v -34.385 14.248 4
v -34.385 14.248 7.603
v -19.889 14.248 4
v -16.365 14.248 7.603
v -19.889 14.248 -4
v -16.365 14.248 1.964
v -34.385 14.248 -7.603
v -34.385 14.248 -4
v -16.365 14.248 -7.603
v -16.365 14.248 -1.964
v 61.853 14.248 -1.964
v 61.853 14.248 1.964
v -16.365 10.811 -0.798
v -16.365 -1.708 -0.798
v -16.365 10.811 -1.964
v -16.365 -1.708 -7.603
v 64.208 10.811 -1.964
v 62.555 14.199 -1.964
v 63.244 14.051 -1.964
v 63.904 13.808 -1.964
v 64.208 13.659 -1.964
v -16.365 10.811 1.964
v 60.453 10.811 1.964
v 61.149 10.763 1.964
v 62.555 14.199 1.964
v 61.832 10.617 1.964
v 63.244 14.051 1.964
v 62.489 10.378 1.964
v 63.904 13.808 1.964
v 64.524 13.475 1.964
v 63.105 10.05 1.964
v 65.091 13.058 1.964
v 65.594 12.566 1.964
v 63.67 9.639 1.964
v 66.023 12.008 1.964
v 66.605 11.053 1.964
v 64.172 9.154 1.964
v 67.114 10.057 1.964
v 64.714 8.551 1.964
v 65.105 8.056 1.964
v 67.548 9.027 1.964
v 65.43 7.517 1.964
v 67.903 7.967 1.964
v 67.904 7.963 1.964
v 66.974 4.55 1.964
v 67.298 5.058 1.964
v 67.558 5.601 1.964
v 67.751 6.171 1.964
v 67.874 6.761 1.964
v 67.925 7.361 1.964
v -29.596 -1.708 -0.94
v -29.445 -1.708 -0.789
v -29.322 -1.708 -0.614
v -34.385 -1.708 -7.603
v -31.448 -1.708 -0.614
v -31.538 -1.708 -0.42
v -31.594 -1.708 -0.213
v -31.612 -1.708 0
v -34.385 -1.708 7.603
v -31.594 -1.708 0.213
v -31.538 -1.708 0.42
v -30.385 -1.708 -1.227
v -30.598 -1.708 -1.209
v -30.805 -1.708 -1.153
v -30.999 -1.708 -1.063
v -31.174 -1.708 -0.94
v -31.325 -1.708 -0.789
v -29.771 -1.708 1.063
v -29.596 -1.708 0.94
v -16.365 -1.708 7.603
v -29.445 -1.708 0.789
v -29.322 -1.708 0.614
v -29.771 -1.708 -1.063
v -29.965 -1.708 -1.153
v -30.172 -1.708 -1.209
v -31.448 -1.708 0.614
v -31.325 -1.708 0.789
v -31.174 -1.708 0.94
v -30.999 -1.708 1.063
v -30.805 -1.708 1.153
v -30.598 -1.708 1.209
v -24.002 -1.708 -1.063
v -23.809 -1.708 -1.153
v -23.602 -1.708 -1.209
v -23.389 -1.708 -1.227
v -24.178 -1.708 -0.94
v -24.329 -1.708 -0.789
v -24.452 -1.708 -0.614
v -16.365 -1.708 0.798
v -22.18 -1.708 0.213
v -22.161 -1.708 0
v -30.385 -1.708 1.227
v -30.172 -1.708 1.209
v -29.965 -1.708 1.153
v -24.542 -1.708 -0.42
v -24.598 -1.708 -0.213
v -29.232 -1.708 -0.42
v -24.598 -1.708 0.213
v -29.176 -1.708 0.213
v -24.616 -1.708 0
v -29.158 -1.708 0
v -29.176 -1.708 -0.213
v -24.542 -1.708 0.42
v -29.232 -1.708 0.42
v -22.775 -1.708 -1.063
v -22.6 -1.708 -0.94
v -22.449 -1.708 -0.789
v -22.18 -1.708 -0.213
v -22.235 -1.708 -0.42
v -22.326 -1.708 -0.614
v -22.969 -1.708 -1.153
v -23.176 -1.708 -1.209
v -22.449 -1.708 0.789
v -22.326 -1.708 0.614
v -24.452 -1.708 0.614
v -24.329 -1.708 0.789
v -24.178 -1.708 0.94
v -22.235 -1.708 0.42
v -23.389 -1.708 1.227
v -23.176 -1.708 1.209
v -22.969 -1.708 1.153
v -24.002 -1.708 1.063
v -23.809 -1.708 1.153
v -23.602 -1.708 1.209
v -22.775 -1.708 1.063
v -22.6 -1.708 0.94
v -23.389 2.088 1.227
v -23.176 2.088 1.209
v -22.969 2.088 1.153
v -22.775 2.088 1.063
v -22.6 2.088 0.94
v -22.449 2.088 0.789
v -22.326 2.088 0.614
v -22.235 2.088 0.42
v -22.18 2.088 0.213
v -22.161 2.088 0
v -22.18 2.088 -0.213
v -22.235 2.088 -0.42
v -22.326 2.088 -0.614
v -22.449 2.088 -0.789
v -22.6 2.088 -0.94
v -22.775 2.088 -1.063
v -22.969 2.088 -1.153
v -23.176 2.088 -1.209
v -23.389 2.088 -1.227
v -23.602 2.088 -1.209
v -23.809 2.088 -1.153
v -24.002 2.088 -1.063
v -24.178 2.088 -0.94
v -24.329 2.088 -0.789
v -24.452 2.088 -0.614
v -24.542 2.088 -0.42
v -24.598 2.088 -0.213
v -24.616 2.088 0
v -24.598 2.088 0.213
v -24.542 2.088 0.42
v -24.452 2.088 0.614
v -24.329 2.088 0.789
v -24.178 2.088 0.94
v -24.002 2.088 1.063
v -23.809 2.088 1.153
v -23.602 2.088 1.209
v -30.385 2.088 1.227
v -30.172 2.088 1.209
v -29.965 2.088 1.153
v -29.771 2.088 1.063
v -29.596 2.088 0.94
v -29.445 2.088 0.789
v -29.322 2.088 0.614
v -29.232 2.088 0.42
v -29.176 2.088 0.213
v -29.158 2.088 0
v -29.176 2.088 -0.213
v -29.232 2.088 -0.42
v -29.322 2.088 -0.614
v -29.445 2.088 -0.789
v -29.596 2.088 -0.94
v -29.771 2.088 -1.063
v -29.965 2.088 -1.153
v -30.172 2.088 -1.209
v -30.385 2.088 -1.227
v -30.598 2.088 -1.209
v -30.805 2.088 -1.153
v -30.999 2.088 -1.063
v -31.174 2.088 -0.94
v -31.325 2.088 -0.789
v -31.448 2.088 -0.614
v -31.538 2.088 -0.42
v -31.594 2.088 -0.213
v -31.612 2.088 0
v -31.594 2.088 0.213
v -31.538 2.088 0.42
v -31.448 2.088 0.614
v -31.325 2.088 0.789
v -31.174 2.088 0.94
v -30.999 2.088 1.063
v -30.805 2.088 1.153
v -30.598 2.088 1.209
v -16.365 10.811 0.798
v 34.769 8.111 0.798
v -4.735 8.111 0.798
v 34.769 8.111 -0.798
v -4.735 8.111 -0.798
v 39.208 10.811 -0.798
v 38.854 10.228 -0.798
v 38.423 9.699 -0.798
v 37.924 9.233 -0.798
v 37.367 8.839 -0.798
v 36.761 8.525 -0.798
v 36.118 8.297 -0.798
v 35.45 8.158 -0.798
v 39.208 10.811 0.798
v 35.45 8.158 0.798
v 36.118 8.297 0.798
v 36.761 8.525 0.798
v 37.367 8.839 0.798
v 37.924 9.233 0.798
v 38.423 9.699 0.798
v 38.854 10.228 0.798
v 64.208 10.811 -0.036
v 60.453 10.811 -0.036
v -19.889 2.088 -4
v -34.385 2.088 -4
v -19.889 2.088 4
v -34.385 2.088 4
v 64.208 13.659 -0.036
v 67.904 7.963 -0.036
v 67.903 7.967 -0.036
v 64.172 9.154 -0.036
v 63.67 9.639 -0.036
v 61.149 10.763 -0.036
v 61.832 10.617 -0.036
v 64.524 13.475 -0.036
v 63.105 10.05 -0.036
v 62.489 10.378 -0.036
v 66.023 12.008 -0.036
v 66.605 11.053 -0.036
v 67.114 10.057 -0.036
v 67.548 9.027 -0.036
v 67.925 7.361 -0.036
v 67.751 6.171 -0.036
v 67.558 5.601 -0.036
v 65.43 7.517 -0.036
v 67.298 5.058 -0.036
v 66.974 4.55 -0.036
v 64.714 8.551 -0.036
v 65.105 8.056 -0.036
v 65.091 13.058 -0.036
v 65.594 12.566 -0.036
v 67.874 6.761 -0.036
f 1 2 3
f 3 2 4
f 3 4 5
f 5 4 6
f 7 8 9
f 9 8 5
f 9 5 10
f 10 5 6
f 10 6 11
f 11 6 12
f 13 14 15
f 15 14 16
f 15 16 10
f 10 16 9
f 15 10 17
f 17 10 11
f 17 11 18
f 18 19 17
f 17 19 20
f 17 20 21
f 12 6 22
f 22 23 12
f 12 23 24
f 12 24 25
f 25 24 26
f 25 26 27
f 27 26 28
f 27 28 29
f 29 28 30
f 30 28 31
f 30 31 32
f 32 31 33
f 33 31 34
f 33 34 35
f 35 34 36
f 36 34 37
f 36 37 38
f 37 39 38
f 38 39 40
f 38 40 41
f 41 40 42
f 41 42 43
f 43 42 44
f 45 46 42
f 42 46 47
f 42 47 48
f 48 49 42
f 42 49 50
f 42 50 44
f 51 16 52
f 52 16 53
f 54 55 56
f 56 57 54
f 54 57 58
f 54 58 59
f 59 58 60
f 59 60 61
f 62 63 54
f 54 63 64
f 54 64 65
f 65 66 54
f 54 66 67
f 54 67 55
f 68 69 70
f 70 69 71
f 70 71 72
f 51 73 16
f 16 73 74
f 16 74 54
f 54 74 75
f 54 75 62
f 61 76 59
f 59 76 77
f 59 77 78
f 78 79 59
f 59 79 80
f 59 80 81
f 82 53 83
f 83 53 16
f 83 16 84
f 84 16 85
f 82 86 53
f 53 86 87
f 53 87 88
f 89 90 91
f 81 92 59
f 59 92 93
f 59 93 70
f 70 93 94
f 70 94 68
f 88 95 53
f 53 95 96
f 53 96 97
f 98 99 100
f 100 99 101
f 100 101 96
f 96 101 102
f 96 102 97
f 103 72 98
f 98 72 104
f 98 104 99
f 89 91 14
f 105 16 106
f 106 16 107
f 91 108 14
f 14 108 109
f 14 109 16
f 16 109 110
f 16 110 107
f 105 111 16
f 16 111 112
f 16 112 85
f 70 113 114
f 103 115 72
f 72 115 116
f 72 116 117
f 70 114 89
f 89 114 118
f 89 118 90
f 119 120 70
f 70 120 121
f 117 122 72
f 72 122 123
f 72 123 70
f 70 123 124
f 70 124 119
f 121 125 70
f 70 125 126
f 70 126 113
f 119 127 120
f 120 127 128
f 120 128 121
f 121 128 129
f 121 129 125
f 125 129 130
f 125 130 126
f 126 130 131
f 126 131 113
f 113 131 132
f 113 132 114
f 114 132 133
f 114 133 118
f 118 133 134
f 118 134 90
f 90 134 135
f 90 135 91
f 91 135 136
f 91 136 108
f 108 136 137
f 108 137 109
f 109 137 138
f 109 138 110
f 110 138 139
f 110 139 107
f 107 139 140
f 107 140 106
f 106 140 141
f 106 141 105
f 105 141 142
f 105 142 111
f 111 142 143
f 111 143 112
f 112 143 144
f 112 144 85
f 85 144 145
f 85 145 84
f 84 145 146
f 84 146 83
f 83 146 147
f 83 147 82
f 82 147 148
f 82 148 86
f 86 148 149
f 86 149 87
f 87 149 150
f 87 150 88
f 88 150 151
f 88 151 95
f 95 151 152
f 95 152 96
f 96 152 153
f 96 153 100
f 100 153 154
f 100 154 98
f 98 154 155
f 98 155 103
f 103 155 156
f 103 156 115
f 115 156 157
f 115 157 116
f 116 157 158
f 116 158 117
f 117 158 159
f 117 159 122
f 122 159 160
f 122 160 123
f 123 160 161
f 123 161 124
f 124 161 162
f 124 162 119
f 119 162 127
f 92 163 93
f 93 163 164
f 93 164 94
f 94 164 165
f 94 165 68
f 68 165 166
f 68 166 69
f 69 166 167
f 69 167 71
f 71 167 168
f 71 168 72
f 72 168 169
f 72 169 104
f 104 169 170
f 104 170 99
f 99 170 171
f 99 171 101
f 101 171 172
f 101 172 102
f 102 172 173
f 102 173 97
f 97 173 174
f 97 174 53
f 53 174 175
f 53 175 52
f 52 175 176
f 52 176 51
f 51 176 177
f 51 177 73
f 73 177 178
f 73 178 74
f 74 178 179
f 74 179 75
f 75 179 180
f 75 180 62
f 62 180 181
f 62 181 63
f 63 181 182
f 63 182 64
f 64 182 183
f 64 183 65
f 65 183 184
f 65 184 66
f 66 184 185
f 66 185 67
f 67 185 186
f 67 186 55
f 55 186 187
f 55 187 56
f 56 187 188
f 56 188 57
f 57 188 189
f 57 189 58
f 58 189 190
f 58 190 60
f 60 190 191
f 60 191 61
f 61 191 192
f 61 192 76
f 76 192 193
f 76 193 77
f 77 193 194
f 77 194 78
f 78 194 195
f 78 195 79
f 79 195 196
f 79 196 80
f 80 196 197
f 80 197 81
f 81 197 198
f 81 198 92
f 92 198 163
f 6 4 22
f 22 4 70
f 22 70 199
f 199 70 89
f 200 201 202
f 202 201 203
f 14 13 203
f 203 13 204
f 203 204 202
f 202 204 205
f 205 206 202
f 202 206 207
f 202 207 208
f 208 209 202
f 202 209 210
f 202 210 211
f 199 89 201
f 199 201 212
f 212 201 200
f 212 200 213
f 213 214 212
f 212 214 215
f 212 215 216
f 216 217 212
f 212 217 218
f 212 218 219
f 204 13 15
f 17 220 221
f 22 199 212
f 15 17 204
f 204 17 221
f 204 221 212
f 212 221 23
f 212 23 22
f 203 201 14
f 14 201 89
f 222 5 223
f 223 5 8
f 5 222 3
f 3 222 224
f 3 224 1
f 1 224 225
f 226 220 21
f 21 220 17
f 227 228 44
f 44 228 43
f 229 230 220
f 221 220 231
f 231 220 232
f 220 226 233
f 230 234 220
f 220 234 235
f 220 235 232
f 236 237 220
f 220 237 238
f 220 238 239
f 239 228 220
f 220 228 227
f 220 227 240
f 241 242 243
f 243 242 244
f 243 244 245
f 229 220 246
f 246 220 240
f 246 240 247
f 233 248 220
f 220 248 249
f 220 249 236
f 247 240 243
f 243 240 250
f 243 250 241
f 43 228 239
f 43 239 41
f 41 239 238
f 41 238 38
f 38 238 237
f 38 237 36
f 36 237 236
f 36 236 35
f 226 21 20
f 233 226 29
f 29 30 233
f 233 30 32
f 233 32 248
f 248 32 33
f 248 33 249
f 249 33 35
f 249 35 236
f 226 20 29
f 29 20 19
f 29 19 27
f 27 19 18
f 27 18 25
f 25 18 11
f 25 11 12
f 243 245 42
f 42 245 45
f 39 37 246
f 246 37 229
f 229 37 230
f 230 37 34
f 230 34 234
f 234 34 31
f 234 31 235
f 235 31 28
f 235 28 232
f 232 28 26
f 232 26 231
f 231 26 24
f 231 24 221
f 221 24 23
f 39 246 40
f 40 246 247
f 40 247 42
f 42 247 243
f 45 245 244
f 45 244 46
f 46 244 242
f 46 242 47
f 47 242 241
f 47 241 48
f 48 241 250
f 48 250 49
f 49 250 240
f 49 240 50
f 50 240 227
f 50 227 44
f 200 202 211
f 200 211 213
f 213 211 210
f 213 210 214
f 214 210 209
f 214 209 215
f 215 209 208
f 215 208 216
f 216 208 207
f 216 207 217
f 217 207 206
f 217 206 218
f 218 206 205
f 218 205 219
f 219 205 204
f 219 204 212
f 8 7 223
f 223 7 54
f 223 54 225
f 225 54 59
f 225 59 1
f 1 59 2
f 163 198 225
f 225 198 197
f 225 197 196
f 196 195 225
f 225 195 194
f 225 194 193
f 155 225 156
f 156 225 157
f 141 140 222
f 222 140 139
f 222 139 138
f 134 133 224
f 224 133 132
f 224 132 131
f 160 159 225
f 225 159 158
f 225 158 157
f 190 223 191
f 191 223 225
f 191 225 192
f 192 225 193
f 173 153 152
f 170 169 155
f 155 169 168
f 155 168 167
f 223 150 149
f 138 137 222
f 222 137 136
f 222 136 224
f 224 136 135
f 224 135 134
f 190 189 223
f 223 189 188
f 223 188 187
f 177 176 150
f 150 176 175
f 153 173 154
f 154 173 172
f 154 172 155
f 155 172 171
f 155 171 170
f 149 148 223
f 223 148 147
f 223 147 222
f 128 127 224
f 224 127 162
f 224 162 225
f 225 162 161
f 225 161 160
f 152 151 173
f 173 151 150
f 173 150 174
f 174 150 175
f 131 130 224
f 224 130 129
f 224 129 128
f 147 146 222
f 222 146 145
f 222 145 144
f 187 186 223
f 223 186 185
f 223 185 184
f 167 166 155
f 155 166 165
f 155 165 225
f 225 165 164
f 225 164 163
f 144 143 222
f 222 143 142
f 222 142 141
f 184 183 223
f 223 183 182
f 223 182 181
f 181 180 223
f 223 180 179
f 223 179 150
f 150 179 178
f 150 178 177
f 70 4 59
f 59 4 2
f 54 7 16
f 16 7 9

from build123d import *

# Parameters (mm, degrees)
SKETCH1_W            = 60
SKETCH1_H            = 7.5
BOSS_EXTRUDE1_DEPTH  = 13
SKETCH3_W            = 12
SKETCH3_H            = 5
CUT_EXTRUDE1_DEPTH   = 10.5
SKETCH4_R            = 1
CUT_EXTRUDE2_DEPTH   = 10
SKETCH9_W            = 45.277568689
SKETCH9_H            = 2.15
CUT_EXTRUDE8_DEPTH   = 15
SKETCH13_W           = 45.277568689
SKETCH13_H           = 3.2
CUT_EXTRUDE10_DEPTH  = 8
SKETCH14_W           = 45.277568689
SKETCH14_H           = 0.95
CUT_EXTRUDE11_DEPTH  = 2.2
RIB10_REACH          = 34.91
SKETCH16_WALL_W      = 80.220727034
SKETCH16_WALL_H      = 1.3
SKETCH20_W           = 12
SKETCH20_H           = 5
BOSS_EXTRUDE3_DEPTH  = 3
SKETCH22_W           = 12
SKETCH22_H           = 5
CUT_EXTRUDE13_DEPTH  = 1.95
CUT_EXTRUDE14_START  = -10
SKETCH23_R           = 1
CUT_EXTRUDE14_DEPTH  = 10
SCALE1_SCALE         = 1.6
SCALE3_SCALE         = 0.8
SCALE4_SCALE         = 0.95890411
SKETCH34_W           = 14.546034326
SKETCH34_H           = 7.999999695
CUT_EXTRUDE20_DEPTH  = 15
SKETCH39_W           = 3.927671232
SKETCH39_H           = 3.436712329
BOSS_EXTRUDE5_DEPTH  = 25
BOSS_EXTRUDE6_DEPTH  = 2
FILLET1_R            = 15
FILLET3_R            = 5
BOSS_EXTRUDE7_DEPTH  = 2
FILLET4_R            = 5
FILLET5_R            = 5
FILLET6_R            = 5
FILLET7_R            = 5
SKETCH52_W           = 9.205479452
SKETCH52_H           = 15.956164384
CUT_EXTRUDE21_DEPTH  = 0.05
SKETCH54_W           = 0.182732797
SKETCH54_H           = 6.136986302
BOSS_EXTRUDE8_DEPTH  = 15
SKETCH55_W           = 6.136986302
SKETCH55_H           = 3.40109589
CUT_EXTRUDE22_DEPTH  = 15
SKETCH57_W           = 14.496034326
SKETCH57_H           = 7.999999695
CUT_EXTRUDE23_DEPTH  = 12.16
SKETCH58_W           = 18.020271855
SKETCH58_H           = 15.956164384
BOSS_EXTRUDE9_DEPTH  = 3
SKETCH59_W           = 18.020271855
SKETCH59_H           = 15.956164384
BOSS_EXTRUDE10_DEPTH = 3


with BuildPart() as part:
    # Sketch1 → Boss-Extrude1 (new body)
    with BuildSketch(Plane(origin=(0, 0, 0), x_dir=(1, 0, 0), z_dir=(0, 1, 0))):
        Rectangle(SKETCH1_W, SKETCH1_H)
    extrude(amount=BOSS_EXTRUDE1_DEPTH)

    # Sketch3 → Cut-Extrude1 (cut)
    with BuildSketch(Plane(origin=(0, 13, 0), x_dir=(1, 0, 0), z_dir=(0, 1, 0))):
        with Locations((-24, 0)):
            Rectangle(SKETCH3_W, SKETCH3_H)
    extrude(amount=-CUT_EXTRUDE1_DEPTH, mode=Mode.SUBTRACT)

    # Sketch4 → Cut-Extrude2 (cut)
    with BuildSketch(Plane(origin=(0, 2.5, 0), x_dir=(1, 0, 0), z_dir=(0, 1, 0))):
        with Locations(Location((-21, 0, 0), (0, 0, 270))):
            Circle(SKETCH4_R)
        with Locations(Location((-26.7, 0, 0), (0, 0, 270))):
            Circle(SKETCH4_R)
    extrude(amount=-CUT_EXTRUDE2_DEPTH, mode=Mode.SUBTRACT)

    # Sketch9 → Cut-Extrude8 (cut)
    with BuildSketch(Plane.XZ):
        with Locations((7.361215656, 2.675)):
            Rectangle(SKETCH9_W, SKETCH9_H)
        with Locations((7.361215656, -2.675)):
            Rectangle(SKETCH9_W, SKETCH9_H)
    extrude(amount=-CUT_EXTRUDE8_DEPTH, mode=Mode.SUBTRACT)

    # Sketch13 → Cut-Extrude10 (cut)
    with BuildSketch(Plane.XZ):
        with Locations((7.361215656, 0)):
            Rectangle(SKETCH13_W, SKETCH13_H)
    extrude(amount=-CUT_EXTRUDE10_DEPTH, mode=Mode.SUBTRACT)

    # Sketch14 → Cut-Extrude11 (cut)
    with BuildSketch(Plane.XZ.offset(-8)):
        with Locations((7.361215656, 1.125)):
            Rectangle(SKETCH14_W, SKETCH14_H)
        with Locations((7.361215656, -1.125)):
            Rectangle(SKETCH14_W, SKETCH14_H)
    extrude(amount=-CUT_EXTRUDE11_DEPTH, mode=Mode.SUBTRACT)

    # Sketch16 wall → Rib10 (add, up to next)
    with BuildSketch(Plane(origin=(-10.539893857, 4, 0), x_dir=(-0.764085816902, -0.645114613389, 0), z_dir=(0.645114613389, -0.764085816902, 0)), mode=Mode.PRIVATE) as rib10_sk1:
        Rectangle(SKETCH16_WALL_W, SKETCH16_WALL_H)
    rib10_tool1 = extrude(rib10_sk1.sketch, amount=-RIB10_REACH, mode=Mode.PRIVATE) - part.part
    add(rib10_tool1.solids().sort_by_distance((-10.539893857, 4, 0))[0])

    # Sketch20 → Boss-Extrude3 (add)
    with BuildSketch(Plane(origin=(0, 2.5, 0), x_dir=(1, 0, 0), z_dir=(0, 1, 0))):
        with Locations((-24, 0)):
            Rectangle(SKETCH20_W, SKETCH20_H)
    extrude(amount=BOSS_EXTRUDE3_DEPTH)

    # Sketch22 → Cut-Extrude13 (cut)
    with BuildSketch(Plane(origin=(0, 5.5, 0), x_dir=(1, 0, 0), z_dir=(0, 1, 0))):
        with Locations((-24, 0)):
            Rectangle(SKETCH22_W, SKETCH22_H)
    extrude(amount=-CUT_EXTRUDE13_DEPTH, mode=Mode.SUBTRACT)

    # Sketch23 → Cut-Extrude14 (cut)
    with BuildSketch(Plane.XZ.offset(CUT_EXTRUDE14_START)):
        with Locations(Location((-26.7, 0, 0), (0, 0, 90))):
            Circle(SKETCH23_R)
        with Locations(Location((-21, 0, 0), (0, 0, 90))):
            Circle(SKETCH23_R)
    extrude(amount=CUT_EXTRUDE14_DEPTH, mode=Mode.SUBTRACT)


with BuildPart() as part_1:
    # Scale1: scaled about (-10.495093685, 7.511594664, 0)
    add(part.part.scale(SCALE1_SCALE).moved(Location((6.297056211, -4.506956798, 0))))


with BuildPart() as part_2:
    # Scale3: scaled about (-10.495093686, 7.511594664, 0)
    add(part_1.part.scale(SCALE3_SCALE).moved(Location((-2.099018737, 1.502318933, 0))))


with BuildPart() as part_3:
    # Scale4: scaled about (-10.495093686, 7.511594664, 0)
    add(part_2.part.scale(SCALE4_SCALE).moved(Location((-0.43130522, 0.308695671, 0))))

    # Sketch34 → Cut-Extrude20 (cut)
    with BuildSketch(Plane(origin=(0, 2.649144227, 0), x_dir=(1, 0, 0), z_dir=(0, 1, 0))):
        with Locations((-27.162345095, -7.59e-07)):
            Rectangle(SKETCH34_W, SKETCH34_H)
    extrude(amount=CUT_EXTRUDE20_DEPTH, mode=Mode.SUBTRACT)

    # Sketch39 → Boss-Extrude5 (add)
    with BuildSketch(Plane(origin=(39.208473359, 0, 0), x_dir=(0, 0, -1), z_dir=(1, 0, 0))):
        with Locations((0, 12.529692173)):
            Rectangle(SKETCH39_W, SKETCH39_H)
    extrude(amount=BOSS_EXTRUDE5_DEPTH)

    # Sketch45 → Boss-Extrude6 (add)
    with BuildSketch(Plane.XY.offset(1.963835616)):
        Polygon((64.208473359, 14.248048337), (67.197905162, 11.258616533), (67.903164447, 7.966965022), (68.244364149, 4.408739558), (65.703189261, 8.649364426), (64.208473359, 10.811336008), align=None)
    extrude(amount=-BOSS_EXTRUDE6_DEPTH)

    # Fillet1
    # the kernel refuses this fillet: 15 mm, written as the material it takes off along each edge
    with BuildSketch(Plane(origin=(67.197905162, 11.258616533, 12.842753048), x_dir=(-0.7071067811865568, 0.7071067811865384, 0), z_dir=(0, 0, -1))) as fillet1_piece_1:
        with BuildLine():
            CenterArc((4.351566973, -15), FILLET1_R, 90, 28.588827617)
            Line((-2.826242727, -1.828855482), (0, 0))
            Line((0, 0), (4.351566973, 0))
        make_face()
    extrude(amount=23.757834864, mode=Mode.SUBTRACT)

    # Fillet3
    fillet3_edges = [part_3.edges().sort_by_distance(p)[0] for p in [
        (64.207755923, 14.248048337, 0),
    ]]
    fillet(fillet3_edges, radius=FILLET3_R)

    # Sketch47 → Boss-Extrude7 (add)
    with BuildSketch(Plane.XY.offset(1.963835616)):
        Polygon((62.681686065, 10.811336008), (65.137458222, 8.07903323), (66.974128155, 4.550150551), (68.244364149, 4.408739558), (65.703189261, 8.649364426), (64.208473359, 10.811336008), align=None)
    extrude(amount=-BOSS_EXTRUDE7_DEPTH)

    # Fillet4
    fillet4_edges = [part_3.edges().sort_by_distance(p)[0] for p in [
        (62.681686065, 10.811336008, 0.963835616),
    ]]
    fillet(fillet4_edges, radius=FILLET4_R)

    # Fillet5
    fillet5_edges = [part_3.edges().sort_by_distance(p)[0] for p in [
        (65.137458222, 8.07903323, 0.963835616),
    ]]
    fillet(fillet5_edges, radius=FILLET5_R)

    # Fillet6
    # the kernel refuses this fillet: 5 mm, written as the material it takes off along each edge
    with BuildSketch(Plane(origin=(68.244364149, 4.408739558, 10.889498263), x_dir=(-0.993860211442073, 0.11064303011178676, 0), z_dir=(0, 0, -1))) as fillet6_piece_1:
        with BuildLine():
            CenterArc((5.625725169, 2.469414691), FILLET6_R, 168.170246518, 41.425870444)
            Line((0.731919855, 3.494436423), (0.634043748, 3.514936858))
            Line((0.634043748, 3.514936858), (-0.097876106, 0.020500435))
            Line((-0.097876106, 0.020500435), (0, -0.1))
            ThreePointArc((0, -0.1), (0.639041577, -0.1), (1.191130314, -0.049388294))
            Line((1.191130314, -0.049388294), (1.278083154, 0))
        make_face()
    extrude(amount=19.851325293, mode=Mode.SUBTRACT)

    # Fillet7
    # the kernel refuses this fillet: 5 mm, written as the material it takes off along each edge
    with BuildSketch(Plane(origin=(39.208473358, 8.111062035, -11.897149471), x_dir=(1.1344900488242768e-10, 1.0, 0), z_dir=(0, 0, 1))) as fillet7_piece_1:
        with BuildLine():
            CenterArc((4.999999999, 4.439736501), FILLET7_R, 180.000000007, 62.61642823)
            Line((-1e-09, 4.439736501), (-0.100000001, 4.439736501))
            Line((-0.100000001, 4.439736501), (-0.1, 0))
            Line((-0.1, 0), (0, -0.1))
            ThreePointArc((0, -0.1), (1.350136986, -0.1), (2.654279452, -0.08879473))
            Line((2.654279452, -0.08879473), (2.700273973, 0))
        make_face()
    extrude(amount=23.794298942, mode=Mode.SUBTRACT)

    # Sketch52 → Cut-Extrude21 (cut)
    with BuildSketch(Plane.ZY.offset(34.435362258)):
        with Locations((0, 6.269966145)):
            Rectangle(SKETCH52_W, SKETCH52_H)
    extrude(amount=-CUT_EXTRUDE21_DEPTH, mode=Mode.SUBTRACT)

    # Sketch54 → Boss-Extrude8 (add)
    with BuildSketch(Plane(origin=(0, 2.649144227, 0), x_dir=(1, 0, 0), z_dir=(0, 1, 0))):
        with Locations((-19.797961534, 0)):
            Rectangle(SKETCH54_W, SKETCH54_H)
    extrude(amount=BOSS_EXTRUDE8_DEPTH)

    # Sketch55 → Cut-Extrude22 (cut)
    with BuildSketch(Plane(origin=(-19.706595135, 0, 0), x_dir=(0, 0, -1), z_dir=(1, 0, 0))):
        with Locations((0, 15.948596282)):
            Rectangle(SKETCH55_W, SKETCH55_H)
    extrude(amount=-CUT_EXTRUDE22_DEPTH, mode=Mode.SUBTRACT)

    # Sketch57 → Cut-Extrude23 (cut)
    with BuildSketch(Plane(origin=(0, 14.248048337, 0), x_dir=(1, 0, 0), z_dir=(0, 1, 0))):
        with Locations((-27.137345095, -7.59e-07)):
            Rectangle(SKETCH57_W, SKETCH57_H)
    extrude(amount=-CUT_EXTRUDE23_DEPTH, mode=Mode.SUBTRACT)

    # Sketch58 → Boss-Extrude9 (add)
    with BuildSketch(Plane.XY.offset(4.602739726)):
        with Locations((-25.37522633, 6.269966145)):
            Rectangle(SKETCH58_W, SKETCH58_H)
    extrude(amount=BOSS_EXTRUDE9_DEPTH)

    # Sketch59 → Boss-Extrude10 (add)
    with BuildSketch(Plane(origin=(0, 0, -4.602739726), x_dir=(-1, 0, 0), z_dir=(0, 0, -1))):
        with Locations((25.37522633, 6.269966145)):
            Rectangle(SKETCH59_W, SKETCH59_H)
    extrude(amount=BOSS_EXTRUDE10_DEPTH)


solid = part_3.part
